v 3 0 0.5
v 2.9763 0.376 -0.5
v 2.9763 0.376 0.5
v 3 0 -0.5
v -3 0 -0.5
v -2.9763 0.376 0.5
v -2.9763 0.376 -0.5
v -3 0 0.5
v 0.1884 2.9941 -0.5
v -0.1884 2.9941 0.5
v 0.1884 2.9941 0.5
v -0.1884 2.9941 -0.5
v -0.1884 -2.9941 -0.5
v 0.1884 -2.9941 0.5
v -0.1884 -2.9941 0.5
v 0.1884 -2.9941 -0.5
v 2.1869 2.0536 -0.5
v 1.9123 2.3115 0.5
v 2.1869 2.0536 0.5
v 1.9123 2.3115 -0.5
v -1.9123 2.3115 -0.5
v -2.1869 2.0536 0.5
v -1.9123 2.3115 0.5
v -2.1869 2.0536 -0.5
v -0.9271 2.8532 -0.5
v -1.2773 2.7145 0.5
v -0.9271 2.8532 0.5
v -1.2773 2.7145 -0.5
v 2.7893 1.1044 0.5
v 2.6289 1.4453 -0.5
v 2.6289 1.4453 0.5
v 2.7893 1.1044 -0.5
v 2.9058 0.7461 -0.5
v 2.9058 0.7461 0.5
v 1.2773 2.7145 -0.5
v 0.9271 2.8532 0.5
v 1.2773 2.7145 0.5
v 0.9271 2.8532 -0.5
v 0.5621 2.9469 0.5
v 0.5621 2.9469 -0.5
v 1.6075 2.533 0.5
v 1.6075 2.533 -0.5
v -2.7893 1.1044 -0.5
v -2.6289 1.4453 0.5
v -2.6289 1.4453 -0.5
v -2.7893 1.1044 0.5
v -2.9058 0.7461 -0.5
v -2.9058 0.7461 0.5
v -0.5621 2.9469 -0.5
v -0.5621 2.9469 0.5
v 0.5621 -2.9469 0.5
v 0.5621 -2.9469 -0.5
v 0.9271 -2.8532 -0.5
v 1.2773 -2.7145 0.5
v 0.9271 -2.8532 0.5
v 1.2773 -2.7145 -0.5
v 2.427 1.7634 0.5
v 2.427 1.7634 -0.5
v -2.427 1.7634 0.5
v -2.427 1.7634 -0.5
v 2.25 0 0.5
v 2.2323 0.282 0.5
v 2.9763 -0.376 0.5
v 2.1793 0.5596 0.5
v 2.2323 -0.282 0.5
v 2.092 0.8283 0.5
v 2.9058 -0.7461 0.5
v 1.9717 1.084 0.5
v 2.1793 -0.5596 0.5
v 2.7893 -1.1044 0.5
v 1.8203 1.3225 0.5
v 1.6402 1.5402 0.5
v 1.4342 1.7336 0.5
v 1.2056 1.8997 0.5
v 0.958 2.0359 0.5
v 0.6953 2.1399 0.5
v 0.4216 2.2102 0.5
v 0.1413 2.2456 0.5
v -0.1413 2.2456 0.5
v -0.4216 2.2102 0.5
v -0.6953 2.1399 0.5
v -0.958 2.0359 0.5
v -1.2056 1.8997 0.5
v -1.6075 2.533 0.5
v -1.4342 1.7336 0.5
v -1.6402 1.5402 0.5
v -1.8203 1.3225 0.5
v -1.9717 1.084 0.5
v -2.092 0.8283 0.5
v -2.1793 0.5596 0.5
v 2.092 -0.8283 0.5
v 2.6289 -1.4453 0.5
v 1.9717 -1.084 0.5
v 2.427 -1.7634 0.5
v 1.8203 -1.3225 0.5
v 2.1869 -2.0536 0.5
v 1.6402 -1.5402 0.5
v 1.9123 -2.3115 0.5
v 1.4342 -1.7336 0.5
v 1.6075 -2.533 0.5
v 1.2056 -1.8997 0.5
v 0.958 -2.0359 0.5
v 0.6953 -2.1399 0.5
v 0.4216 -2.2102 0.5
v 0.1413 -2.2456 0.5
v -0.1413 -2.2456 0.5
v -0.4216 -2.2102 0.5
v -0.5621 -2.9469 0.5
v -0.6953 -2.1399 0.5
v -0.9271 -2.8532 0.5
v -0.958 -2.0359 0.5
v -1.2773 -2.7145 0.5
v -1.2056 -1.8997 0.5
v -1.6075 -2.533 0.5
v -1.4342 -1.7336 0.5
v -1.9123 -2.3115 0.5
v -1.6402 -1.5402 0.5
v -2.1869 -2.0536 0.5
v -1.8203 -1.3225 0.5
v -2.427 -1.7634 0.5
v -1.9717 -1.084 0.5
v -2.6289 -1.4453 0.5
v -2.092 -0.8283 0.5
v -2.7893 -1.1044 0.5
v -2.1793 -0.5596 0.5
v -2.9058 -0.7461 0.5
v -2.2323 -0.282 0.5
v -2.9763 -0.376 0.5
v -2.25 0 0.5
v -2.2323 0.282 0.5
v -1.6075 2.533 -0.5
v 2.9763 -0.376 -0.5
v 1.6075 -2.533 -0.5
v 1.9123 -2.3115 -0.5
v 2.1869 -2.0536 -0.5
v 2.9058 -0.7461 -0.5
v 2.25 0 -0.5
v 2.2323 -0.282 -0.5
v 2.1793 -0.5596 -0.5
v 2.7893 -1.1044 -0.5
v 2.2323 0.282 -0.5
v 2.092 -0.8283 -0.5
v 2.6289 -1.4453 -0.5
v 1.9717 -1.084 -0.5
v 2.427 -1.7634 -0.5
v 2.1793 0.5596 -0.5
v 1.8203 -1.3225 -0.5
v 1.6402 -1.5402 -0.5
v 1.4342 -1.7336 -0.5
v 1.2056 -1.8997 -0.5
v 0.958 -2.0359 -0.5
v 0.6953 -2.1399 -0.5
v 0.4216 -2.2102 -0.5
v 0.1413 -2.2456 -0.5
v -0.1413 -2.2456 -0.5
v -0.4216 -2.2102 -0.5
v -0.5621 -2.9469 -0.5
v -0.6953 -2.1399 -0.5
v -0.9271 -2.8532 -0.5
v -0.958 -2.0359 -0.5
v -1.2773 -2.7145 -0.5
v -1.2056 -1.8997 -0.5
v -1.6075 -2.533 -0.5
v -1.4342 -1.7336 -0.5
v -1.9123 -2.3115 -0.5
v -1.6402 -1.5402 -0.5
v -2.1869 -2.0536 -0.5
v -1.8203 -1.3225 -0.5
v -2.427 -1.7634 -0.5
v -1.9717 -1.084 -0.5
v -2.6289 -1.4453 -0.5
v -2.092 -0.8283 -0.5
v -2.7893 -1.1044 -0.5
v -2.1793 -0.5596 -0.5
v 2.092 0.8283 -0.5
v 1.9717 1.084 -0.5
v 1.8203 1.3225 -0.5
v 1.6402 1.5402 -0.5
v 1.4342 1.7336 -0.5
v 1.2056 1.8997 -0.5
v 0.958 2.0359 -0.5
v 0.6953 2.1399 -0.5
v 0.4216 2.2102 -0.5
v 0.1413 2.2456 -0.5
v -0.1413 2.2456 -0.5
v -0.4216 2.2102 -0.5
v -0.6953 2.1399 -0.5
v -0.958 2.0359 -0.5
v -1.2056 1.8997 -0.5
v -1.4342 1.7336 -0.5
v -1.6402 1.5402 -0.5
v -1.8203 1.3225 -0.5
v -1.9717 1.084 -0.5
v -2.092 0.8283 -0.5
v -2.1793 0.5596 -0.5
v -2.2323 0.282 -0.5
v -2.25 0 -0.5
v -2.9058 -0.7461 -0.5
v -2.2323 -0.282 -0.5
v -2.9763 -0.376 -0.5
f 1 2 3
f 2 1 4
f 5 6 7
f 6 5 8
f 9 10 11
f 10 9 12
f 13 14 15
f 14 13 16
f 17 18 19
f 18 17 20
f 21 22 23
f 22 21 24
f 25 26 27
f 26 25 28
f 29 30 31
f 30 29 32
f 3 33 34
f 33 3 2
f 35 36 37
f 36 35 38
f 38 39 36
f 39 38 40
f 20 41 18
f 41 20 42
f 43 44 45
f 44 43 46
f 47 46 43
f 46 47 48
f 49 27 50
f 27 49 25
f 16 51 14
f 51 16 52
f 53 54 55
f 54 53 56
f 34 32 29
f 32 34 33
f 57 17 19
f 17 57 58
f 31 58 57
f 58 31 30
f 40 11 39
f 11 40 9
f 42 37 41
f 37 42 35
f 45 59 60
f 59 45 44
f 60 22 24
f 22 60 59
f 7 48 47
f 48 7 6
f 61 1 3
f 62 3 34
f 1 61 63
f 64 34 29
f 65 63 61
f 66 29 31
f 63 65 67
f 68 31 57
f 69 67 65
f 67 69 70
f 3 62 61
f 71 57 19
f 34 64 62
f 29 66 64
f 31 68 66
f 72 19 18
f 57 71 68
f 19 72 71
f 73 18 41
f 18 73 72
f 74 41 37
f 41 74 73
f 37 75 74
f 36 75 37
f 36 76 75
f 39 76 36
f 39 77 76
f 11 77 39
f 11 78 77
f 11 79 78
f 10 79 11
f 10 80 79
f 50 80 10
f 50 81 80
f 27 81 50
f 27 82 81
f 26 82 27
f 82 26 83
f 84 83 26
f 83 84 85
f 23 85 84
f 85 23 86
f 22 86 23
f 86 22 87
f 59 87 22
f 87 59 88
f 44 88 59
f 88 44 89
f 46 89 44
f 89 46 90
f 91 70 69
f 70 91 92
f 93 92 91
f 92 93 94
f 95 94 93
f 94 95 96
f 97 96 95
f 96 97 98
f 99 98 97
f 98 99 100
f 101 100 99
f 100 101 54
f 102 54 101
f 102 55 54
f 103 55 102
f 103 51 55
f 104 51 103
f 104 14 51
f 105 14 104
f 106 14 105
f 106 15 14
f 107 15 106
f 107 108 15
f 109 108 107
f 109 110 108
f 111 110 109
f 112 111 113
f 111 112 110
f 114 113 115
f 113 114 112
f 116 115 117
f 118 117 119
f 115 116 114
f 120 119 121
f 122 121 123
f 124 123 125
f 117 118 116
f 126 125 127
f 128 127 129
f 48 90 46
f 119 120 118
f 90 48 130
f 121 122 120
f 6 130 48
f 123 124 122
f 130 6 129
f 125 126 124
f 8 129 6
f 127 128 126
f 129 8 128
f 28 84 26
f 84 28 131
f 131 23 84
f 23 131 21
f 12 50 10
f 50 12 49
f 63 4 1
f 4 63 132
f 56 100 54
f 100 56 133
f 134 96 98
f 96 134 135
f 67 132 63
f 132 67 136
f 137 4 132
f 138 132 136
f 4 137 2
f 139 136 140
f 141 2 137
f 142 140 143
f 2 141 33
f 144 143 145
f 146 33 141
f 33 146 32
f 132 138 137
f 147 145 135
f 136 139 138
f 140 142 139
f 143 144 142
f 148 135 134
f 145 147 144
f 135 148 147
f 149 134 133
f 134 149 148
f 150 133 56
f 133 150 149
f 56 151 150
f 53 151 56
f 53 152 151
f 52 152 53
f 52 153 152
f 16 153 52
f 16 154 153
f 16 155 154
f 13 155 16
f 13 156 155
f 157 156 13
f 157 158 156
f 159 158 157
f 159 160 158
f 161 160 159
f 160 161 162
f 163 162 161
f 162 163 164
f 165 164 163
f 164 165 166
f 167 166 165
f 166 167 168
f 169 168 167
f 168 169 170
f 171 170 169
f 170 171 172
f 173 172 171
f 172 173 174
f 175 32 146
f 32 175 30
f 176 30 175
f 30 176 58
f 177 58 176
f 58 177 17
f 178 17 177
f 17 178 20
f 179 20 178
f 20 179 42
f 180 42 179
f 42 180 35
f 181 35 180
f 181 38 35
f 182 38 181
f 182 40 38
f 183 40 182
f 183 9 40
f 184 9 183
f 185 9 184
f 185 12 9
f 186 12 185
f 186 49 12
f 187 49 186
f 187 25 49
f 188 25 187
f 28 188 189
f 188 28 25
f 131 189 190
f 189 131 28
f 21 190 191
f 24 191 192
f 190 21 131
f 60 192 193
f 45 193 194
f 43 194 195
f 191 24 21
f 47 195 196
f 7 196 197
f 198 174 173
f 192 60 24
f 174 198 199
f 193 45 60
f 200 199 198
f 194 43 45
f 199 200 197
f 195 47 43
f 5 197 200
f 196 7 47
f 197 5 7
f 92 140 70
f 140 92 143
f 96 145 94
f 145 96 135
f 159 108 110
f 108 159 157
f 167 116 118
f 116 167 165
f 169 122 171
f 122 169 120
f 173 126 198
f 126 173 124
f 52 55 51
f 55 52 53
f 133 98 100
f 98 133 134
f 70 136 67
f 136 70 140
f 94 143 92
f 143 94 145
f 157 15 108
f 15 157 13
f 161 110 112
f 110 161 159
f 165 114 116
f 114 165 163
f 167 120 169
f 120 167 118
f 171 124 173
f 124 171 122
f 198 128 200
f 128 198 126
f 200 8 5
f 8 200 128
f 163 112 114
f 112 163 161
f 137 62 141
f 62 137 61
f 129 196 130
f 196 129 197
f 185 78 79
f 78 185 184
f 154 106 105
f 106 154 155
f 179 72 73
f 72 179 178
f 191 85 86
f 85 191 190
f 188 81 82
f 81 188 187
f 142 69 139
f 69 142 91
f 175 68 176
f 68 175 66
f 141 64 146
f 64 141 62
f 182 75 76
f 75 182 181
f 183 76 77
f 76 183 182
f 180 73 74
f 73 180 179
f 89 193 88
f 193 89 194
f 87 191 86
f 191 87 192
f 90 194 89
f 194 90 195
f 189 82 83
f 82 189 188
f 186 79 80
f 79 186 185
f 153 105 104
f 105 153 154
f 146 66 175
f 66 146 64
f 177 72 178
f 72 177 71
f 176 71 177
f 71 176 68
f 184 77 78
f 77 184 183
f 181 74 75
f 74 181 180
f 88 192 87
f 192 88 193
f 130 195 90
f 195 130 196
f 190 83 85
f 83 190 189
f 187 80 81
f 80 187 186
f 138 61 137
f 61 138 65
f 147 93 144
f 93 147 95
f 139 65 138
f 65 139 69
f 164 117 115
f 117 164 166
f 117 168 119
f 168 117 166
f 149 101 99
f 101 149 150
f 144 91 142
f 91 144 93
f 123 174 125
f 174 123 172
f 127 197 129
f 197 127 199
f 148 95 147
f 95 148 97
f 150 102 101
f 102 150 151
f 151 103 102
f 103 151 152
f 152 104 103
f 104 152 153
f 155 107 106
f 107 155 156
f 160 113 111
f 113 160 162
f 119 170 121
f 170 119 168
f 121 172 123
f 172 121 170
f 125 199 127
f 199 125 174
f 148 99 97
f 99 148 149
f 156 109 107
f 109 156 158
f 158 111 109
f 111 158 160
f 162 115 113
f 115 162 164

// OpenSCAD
$fn = 50;


difference() {
	union() {
		translate(v = [0, 0, -0.5000000000]) {
			cylinder(h = 1, r = 3.0000000000);
		}
	}
	union() {
		translate(v = [0, 0, -100.0000000000]) {
			cylinder(h = 200, r = 2.2500000000);
		}
	}
}
